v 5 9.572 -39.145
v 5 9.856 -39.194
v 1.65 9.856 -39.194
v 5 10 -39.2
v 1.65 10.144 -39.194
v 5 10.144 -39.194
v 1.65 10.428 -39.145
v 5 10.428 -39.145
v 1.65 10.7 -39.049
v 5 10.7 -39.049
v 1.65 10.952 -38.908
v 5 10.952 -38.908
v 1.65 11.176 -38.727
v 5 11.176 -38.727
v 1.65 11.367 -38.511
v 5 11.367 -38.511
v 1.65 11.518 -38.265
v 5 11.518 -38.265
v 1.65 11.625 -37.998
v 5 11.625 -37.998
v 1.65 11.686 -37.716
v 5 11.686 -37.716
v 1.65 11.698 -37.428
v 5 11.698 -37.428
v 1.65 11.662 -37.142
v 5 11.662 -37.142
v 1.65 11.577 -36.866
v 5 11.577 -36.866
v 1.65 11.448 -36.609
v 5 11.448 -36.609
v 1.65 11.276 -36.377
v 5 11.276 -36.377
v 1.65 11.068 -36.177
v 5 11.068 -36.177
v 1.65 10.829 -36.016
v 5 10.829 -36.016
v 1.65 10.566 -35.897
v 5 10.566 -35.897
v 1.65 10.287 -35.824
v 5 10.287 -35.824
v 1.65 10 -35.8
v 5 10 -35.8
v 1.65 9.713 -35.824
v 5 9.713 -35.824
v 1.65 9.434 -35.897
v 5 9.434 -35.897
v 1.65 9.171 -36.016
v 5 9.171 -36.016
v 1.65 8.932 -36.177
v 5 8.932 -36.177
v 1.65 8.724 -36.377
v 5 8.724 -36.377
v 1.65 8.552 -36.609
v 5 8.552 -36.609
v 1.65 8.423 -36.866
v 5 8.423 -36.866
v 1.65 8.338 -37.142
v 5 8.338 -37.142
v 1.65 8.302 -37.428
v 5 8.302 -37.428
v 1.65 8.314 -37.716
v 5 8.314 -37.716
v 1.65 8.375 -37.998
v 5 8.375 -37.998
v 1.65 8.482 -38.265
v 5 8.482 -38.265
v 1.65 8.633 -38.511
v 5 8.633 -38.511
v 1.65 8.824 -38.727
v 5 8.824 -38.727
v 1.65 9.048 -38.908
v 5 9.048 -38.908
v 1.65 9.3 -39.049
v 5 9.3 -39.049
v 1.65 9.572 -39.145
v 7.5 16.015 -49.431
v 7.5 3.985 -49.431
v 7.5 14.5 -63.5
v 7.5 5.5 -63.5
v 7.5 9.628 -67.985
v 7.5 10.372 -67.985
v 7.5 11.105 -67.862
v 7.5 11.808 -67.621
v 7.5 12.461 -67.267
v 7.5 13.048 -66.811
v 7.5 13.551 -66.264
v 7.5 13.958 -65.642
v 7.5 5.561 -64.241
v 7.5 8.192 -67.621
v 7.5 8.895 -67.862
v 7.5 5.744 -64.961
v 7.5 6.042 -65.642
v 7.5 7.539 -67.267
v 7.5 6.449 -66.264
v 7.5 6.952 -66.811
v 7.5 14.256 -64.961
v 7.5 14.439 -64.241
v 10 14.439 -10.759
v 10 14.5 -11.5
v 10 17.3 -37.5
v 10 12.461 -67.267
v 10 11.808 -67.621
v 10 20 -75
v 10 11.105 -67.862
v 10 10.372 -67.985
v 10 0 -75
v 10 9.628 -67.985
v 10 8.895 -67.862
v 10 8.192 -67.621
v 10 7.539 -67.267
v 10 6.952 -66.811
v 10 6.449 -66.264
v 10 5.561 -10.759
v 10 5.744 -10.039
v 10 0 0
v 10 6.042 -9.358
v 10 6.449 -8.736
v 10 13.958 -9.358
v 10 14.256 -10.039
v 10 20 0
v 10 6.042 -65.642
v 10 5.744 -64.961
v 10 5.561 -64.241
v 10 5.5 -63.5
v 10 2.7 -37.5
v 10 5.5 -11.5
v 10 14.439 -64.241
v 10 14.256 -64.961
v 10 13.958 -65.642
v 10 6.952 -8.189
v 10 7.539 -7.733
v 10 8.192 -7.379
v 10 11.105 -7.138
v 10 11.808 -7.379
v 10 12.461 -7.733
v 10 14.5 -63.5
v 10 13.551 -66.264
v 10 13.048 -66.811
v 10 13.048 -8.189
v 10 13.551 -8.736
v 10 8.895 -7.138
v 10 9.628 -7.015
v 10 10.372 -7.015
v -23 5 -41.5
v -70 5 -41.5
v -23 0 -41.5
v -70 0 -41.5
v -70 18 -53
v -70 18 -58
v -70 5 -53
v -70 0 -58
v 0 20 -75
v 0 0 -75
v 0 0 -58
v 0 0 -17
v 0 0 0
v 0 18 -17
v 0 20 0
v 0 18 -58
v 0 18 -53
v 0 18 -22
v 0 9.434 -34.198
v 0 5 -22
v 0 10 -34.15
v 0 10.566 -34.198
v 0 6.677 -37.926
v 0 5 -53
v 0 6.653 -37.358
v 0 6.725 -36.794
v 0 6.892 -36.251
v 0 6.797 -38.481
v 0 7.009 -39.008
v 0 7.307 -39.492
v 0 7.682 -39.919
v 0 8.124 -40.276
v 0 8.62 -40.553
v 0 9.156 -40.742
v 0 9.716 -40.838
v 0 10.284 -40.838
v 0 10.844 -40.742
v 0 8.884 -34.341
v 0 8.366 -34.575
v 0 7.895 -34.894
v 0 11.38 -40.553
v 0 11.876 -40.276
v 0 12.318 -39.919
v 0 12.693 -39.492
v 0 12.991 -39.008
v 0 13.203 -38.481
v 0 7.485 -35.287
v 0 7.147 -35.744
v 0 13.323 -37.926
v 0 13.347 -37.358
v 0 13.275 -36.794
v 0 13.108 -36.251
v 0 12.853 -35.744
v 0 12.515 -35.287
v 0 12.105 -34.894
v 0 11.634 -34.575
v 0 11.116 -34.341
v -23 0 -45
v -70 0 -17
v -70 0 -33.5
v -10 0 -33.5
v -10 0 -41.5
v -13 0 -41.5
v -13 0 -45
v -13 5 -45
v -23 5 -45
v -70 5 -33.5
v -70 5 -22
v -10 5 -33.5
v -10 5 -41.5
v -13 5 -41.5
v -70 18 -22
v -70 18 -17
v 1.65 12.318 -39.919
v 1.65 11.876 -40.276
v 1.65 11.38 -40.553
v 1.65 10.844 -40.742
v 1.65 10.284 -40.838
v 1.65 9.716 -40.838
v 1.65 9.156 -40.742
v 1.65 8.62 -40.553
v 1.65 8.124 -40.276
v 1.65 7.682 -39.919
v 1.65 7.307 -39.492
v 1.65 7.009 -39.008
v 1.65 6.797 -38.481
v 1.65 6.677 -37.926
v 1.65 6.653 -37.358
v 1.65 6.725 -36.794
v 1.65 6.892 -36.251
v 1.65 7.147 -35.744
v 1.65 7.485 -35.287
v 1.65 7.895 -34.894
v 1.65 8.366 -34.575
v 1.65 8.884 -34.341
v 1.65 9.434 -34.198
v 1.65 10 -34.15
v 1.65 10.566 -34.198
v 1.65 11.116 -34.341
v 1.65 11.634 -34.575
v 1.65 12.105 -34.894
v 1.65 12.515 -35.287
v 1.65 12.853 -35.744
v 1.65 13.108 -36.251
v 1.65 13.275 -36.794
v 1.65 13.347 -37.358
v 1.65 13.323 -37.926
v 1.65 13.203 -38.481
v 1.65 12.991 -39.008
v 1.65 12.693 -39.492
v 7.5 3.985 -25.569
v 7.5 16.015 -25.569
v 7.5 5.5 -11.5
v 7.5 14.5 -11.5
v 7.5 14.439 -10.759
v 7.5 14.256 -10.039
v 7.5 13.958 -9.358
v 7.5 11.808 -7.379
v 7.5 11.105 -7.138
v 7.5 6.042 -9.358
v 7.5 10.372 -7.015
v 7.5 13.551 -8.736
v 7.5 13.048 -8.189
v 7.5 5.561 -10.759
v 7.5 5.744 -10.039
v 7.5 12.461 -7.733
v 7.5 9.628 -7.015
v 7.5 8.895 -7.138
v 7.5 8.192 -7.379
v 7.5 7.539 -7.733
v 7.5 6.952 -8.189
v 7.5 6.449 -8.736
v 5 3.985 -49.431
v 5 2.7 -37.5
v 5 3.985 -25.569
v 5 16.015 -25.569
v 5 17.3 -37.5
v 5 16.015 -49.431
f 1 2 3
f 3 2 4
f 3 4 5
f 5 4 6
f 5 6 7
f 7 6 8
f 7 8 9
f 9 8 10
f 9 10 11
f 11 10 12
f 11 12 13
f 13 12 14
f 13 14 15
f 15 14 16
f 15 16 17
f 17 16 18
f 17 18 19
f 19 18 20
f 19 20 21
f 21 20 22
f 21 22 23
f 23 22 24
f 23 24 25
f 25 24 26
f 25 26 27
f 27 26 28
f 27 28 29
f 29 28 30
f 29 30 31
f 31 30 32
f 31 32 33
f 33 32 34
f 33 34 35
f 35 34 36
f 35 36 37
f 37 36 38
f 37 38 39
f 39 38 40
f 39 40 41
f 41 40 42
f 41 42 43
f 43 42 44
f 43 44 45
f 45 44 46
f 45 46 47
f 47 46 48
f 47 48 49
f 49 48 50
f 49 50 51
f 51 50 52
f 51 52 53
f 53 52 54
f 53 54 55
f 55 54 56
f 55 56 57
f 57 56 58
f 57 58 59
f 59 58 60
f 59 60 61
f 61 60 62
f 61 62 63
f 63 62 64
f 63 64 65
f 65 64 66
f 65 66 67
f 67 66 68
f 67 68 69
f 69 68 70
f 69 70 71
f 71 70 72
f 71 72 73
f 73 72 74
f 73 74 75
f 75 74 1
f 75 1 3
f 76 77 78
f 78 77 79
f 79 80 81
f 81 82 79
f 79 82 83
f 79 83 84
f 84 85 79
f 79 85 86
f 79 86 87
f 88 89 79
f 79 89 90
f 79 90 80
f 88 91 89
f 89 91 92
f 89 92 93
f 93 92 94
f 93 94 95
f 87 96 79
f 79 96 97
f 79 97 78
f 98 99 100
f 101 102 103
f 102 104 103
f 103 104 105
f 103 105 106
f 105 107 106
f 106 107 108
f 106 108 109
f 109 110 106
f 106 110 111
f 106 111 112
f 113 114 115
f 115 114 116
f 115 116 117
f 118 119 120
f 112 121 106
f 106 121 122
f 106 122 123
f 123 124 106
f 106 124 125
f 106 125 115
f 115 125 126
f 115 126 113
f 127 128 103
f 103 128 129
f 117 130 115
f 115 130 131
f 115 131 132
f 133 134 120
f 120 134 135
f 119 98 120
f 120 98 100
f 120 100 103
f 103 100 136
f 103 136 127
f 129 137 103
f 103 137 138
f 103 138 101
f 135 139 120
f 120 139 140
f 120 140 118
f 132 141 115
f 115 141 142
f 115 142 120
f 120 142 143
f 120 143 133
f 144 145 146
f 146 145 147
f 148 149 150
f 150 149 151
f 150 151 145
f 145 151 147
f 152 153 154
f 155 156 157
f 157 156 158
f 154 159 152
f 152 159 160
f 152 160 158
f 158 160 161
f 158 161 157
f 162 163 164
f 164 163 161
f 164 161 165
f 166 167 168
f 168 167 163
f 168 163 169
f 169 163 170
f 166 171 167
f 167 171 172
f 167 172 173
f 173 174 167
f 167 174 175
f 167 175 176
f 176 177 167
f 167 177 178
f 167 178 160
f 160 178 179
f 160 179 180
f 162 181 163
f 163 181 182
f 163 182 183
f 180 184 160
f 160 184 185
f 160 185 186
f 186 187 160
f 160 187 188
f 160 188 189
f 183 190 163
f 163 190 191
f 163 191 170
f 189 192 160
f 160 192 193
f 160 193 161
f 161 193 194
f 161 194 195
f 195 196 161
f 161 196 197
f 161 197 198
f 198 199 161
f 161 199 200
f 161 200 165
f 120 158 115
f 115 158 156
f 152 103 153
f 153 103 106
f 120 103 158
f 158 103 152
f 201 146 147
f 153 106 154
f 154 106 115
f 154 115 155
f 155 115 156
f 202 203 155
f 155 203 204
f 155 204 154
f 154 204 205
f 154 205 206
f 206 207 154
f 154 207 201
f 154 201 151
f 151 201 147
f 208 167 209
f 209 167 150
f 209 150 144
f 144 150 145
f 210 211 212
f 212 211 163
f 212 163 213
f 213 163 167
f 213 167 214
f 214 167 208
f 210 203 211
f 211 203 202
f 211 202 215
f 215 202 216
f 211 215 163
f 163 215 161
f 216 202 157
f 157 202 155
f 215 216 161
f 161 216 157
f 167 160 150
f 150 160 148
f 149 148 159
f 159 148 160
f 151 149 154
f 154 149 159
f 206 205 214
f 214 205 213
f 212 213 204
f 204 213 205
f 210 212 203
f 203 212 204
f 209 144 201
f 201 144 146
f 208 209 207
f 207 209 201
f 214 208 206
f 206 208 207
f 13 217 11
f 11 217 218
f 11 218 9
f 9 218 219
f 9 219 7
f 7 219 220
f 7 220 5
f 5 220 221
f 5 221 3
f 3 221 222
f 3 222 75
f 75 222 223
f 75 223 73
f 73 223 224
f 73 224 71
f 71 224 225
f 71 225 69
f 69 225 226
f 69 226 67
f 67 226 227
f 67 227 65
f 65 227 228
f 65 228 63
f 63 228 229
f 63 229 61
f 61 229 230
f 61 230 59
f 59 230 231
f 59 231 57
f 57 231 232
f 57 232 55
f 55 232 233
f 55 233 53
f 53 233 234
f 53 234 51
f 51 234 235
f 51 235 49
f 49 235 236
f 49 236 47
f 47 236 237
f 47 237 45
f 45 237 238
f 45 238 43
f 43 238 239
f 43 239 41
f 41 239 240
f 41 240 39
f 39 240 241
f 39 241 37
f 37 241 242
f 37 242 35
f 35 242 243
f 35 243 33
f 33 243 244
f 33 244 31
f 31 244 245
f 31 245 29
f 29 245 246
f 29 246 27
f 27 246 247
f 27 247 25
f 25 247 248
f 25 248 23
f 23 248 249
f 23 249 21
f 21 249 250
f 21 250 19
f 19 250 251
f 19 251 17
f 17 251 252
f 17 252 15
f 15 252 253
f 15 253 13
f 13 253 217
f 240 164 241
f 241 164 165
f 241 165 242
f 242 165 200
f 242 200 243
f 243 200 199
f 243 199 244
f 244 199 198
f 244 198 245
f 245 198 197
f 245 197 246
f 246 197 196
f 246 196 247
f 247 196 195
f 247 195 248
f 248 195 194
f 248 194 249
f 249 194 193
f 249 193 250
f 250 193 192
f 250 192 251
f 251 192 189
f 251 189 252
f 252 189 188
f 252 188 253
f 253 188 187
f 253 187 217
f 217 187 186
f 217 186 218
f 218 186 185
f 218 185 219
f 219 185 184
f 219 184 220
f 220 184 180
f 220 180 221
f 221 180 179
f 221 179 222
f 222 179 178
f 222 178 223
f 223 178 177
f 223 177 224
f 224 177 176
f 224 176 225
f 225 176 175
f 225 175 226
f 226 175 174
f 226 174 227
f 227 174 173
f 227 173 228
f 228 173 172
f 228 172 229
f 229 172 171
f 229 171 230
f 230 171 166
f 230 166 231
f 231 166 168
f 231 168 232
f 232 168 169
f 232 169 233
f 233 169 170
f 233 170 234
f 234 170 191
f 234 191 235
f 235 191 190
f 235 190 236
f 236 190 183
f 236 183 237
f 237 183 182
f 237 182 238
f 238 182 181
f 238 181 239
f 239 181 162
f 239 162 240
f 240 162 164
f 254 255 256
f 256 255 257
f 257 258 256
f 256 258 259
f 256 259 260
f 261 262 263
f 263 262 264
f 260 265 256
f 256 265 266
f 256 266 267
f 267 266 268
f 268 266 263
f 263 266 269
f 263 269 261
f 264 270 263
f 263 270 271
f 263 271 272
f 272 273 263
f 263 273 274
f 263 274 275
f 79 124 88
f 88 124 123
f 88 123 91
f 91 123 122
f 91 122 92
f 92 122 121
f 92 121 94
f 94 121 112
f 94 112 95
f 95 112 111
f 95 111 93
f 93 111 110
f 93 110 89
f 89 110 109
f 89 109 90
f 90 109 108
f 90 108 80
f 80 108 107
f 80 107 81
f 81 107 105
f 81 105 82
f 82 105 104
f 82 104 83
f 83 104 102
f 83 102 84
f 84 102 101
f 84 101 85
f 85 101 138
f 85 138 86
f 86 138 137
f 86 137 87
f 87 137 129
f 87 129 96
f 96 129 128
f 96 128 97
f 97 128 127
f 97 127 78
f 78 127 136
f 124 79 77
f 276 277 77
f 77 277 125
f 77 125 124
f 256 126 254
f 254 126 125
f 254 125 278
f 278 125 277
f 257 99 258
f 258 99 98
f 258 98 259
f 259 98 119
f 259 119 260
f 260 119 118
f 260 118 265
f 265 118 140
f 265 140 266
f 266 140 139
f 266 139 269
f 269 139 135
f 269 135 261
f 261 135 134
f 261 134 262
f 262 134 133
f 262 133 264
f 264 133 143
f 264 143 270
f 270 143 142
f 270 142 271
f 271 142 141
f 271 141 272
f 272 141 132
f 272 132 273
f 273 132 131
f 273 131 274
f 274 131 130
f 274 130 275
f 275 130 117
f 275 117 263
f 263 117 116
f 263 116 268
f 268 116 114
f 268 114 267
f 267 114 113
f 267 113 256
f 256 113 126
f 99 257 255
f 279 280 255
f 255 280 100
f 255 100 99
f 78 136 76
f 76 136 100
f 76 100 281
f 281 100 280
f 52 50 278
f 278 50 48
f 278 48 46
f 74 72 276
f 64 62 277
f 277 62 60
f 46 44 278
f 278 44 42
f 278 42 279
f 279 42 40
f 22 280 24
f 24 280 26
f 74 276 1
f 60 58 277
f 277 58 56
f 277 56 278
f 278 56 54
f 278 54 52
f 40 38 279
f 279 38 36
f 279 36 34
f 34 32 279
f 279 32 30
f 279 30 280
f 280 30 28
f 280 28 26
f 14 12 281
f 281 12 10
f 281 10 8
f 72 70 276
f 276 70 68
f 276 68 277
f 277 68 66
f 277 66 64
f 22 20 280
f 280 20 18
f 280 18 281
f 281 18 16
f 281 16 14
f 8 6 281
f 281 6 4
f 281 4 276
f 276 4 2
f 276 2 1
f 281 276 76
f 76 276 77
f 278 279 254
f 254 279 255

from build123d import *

# Parameters (mm, degrees)
SKETCH_1_W                   = 10
SKETCH_1_H                   = 75
EXTRUDE_2_DEPTH              = 20
SKETCH_10_W                  = 31
SKETCH_10_H                  = 5
EXTRUDE_3_DEPTH              = 70
SKETCH_11_W                  = 5
SKETCH_11_H                  = 18
EXTRUDE_4_DEPTH              = 70
SKETCH_12_W                  = 5
SKETCH_12_H                  = 18
EXTRUDE_5_DEPTH              = 70
SKETCH_13_W                  = 60
SKETCH_13_H                  = 8
CUT_EXTRUDE_6_DEPTH          = 20
SKETCH_14_W                  = 10
SKETCH_14_H                  = 3.5
CUT_EXTRUDE_7_DEPTH          = 20
HOLE_WIZARD_M3_1_D           = 3.4
HOLE_WIZARD_M3_1_DEPTH       = 20
HOLE_WIZARD_M3_1_CBORE_D     = 6.7
HOLE_WIZARD_M3_1_CBORE_DEPTH = 1.65
HOLE_WIZARD_M3_1_TIP         = 1.021463052
CUT_EXTRUDE_8_DEPTH          = 2.5
CUT_EXTRUDE_9_DEPTH          = 5


with BuildPart() as part:
    # 草图1 → 凸台-拉伸2 (new body)
    with BuildSketch(Plane(origin=(0, 0, 0), x_dir=(1, 0, 0), z_dir=(0, 1, 0))):
        with Locations((5, 37.5)):
            Rectangle(SKETCH_1_W, SKETCH_1_H)
    extrude(amount=EXTRUDE_2_DEPTH)

    # 草图10 → 凸台-拉伸3 (add)
    with BuildSketch(Plane.ZY):
        with Locations((-37.5, 2.5)):
            Rectangle(SKETCH_10_W, SKETCH_10_H)
    extrude(amount=EXTRUDE_3_DEPTH)

    # 草图11 → 凸台-拉伸4 (add)
    with BuildSketch(Plane.ZY):
        with Locations((-19.5, 9)):
            Rectangle(SKETCH_11_W, SKETCH_11_H)
    extrude(amount=EXTRUDE_4_DEPTH)

    # 草图12 → 凸台-拉伸5 (add)
    with BuildSketch(Plane.ZY):
        with Locations((-55.5, 9)):
            Rectangle(SKETCH_12_W, SKETCH_12_H)
    extrude(amount=EXTRUDE_5_DEPTH)

    # 草图13 → 切除-拉伸6 (cut)
    with BuildSketch(Plane(origin=(0, 5, 0), x_dir=(1, 0, 0), z_dir=(0, 1, 0))):
        with Locations((-40, 37.5)):
            Rectangle(SKETCH_13_W, SKETCH_13_H)
    extrude(amount=-CUT_EXTRUDE_6_DEPTH, mode=Mode.SUBTRACT)

    # 草图14 → 切除-拉伸7 (cut)
    with BuildSketch(Plane(origin=(0, 5, 0), x_dir=(1, 0, 0), z_dir=(0, 1, 0))):
        with Locations((-18, 43.25)):
            Rectangle(SKETCH_14_W, SKETCH_14_H)
    extrude(amount=-CUT_EXTRUDE_7_DEPTH, mode=Mode.SUBTRACT)

    # M3 凹圆头螺钉的柱形沉头孔1
    with Locations(Plane(origin=(0, 10, -37.5), x_dir=(0, 0, -1), z_dir=(-1, 0, 0))):
        with Locations((0, 0)):
            CounterBoreHole(HOLE_WIZARD_M3_1_D / 2, HOLE_WIZARD_M3_1_CBORE_D / 2, HOLE_WIZARD_M3_1_CBORE_DEPTH, depth=HOLE_WIZARD_M3_1_DEPTH)
            with Locations((0, 0, -(HOLE_WIZARD_M3_1_DEPTH + HOLE_WIZARD_M3_1_TIP / 2))):  # 118° drill point
                Cone(0, HOLE_WIZARD_M3_1_D / 2, HOLE_WIZARD_M3_1_TIP, mode=Mode.SUBTRACT)

    # 草图5 → 切除-拉伸8 (cut)
    with BuildSketch(Plane(origin=(10, 0, 0), x_dir=(0, 0, -1), z_dir=(1, 0, 0))):
        with BuildLine():
            Line((63.5, 14.5), (39.054281703, 17.132615817))
            ThreePointArc((39.054281703, 17.132615817), (43.184903536, 14.579505626), (44.8, 10))
            ThreePointArc((44.8, 10), (43.184903536, 5.420494374), (39.054281703, 2.867384183))
            Line((39.054281703, 2.867384183), (63.5, 5.5))
            ThreePointArc((63.5, 5.5), (68, 10), (63.5, 14.5))
        make_face()
        with BuildLine():
            Line((37.5, 17.3), (35.945718297, 17.132615817))
            ThreePointArc((35.945718297, 17.132615817), (30.2, 10), (35.945718297, 2.867384183))
            Line((35.945718297, 2.867384183), (37.5, 2.7))
            Line((37.5, 2.7), (39.054281703, 2.867384183))
            ThreePointArc((39.054281703, 2.867384183), (43.184903536, 5.420494374), (44.8, 10))
            ThreePointArc((44.8, 10), (43.184903536, 14.579505626), (39.054281703, 17.132615817))
            Line((39.054281703, 17.132615817), (37.5, 17.3))
        make_face()
        with BuildLine():
            Line((35.945718297, 17.132615817), (11.5, 14.5))
            ThreePointArc((11.5, 14.5), (7, 10), (11.5, 5.5))
            Line((11.5, 5.5), (35.945718297, 2.867384183))
            ThreePointArc((35.945718297, 2.867384183), (30.2, 10), (35.945718297, 17.132615817))
        make_face()
    extrude(amount=-CUT_EXTRUDE_8_DEPTH, mode=Mode.SUBTRACT)

    # 草图16 → 切除-拉伸9 (cut)
    with BuildSketch(Plane(origin=(10, 0, 0), x_dir=(0, 0, -1), z_dir=(1, 0, 0))):
        Polygon((37.5, 17.3), (25.568986317, 16.015121603), (25.568986317, 3.984878397), (37.5, 2.7), (49.431013683, 3.984878397), (49.431013683, 16.015121603), align=None)
    extrude(amount=-CUT_EXTRUDE_9_DEPTH, mode=Mode.SUBTRACT)


solid = part.part
